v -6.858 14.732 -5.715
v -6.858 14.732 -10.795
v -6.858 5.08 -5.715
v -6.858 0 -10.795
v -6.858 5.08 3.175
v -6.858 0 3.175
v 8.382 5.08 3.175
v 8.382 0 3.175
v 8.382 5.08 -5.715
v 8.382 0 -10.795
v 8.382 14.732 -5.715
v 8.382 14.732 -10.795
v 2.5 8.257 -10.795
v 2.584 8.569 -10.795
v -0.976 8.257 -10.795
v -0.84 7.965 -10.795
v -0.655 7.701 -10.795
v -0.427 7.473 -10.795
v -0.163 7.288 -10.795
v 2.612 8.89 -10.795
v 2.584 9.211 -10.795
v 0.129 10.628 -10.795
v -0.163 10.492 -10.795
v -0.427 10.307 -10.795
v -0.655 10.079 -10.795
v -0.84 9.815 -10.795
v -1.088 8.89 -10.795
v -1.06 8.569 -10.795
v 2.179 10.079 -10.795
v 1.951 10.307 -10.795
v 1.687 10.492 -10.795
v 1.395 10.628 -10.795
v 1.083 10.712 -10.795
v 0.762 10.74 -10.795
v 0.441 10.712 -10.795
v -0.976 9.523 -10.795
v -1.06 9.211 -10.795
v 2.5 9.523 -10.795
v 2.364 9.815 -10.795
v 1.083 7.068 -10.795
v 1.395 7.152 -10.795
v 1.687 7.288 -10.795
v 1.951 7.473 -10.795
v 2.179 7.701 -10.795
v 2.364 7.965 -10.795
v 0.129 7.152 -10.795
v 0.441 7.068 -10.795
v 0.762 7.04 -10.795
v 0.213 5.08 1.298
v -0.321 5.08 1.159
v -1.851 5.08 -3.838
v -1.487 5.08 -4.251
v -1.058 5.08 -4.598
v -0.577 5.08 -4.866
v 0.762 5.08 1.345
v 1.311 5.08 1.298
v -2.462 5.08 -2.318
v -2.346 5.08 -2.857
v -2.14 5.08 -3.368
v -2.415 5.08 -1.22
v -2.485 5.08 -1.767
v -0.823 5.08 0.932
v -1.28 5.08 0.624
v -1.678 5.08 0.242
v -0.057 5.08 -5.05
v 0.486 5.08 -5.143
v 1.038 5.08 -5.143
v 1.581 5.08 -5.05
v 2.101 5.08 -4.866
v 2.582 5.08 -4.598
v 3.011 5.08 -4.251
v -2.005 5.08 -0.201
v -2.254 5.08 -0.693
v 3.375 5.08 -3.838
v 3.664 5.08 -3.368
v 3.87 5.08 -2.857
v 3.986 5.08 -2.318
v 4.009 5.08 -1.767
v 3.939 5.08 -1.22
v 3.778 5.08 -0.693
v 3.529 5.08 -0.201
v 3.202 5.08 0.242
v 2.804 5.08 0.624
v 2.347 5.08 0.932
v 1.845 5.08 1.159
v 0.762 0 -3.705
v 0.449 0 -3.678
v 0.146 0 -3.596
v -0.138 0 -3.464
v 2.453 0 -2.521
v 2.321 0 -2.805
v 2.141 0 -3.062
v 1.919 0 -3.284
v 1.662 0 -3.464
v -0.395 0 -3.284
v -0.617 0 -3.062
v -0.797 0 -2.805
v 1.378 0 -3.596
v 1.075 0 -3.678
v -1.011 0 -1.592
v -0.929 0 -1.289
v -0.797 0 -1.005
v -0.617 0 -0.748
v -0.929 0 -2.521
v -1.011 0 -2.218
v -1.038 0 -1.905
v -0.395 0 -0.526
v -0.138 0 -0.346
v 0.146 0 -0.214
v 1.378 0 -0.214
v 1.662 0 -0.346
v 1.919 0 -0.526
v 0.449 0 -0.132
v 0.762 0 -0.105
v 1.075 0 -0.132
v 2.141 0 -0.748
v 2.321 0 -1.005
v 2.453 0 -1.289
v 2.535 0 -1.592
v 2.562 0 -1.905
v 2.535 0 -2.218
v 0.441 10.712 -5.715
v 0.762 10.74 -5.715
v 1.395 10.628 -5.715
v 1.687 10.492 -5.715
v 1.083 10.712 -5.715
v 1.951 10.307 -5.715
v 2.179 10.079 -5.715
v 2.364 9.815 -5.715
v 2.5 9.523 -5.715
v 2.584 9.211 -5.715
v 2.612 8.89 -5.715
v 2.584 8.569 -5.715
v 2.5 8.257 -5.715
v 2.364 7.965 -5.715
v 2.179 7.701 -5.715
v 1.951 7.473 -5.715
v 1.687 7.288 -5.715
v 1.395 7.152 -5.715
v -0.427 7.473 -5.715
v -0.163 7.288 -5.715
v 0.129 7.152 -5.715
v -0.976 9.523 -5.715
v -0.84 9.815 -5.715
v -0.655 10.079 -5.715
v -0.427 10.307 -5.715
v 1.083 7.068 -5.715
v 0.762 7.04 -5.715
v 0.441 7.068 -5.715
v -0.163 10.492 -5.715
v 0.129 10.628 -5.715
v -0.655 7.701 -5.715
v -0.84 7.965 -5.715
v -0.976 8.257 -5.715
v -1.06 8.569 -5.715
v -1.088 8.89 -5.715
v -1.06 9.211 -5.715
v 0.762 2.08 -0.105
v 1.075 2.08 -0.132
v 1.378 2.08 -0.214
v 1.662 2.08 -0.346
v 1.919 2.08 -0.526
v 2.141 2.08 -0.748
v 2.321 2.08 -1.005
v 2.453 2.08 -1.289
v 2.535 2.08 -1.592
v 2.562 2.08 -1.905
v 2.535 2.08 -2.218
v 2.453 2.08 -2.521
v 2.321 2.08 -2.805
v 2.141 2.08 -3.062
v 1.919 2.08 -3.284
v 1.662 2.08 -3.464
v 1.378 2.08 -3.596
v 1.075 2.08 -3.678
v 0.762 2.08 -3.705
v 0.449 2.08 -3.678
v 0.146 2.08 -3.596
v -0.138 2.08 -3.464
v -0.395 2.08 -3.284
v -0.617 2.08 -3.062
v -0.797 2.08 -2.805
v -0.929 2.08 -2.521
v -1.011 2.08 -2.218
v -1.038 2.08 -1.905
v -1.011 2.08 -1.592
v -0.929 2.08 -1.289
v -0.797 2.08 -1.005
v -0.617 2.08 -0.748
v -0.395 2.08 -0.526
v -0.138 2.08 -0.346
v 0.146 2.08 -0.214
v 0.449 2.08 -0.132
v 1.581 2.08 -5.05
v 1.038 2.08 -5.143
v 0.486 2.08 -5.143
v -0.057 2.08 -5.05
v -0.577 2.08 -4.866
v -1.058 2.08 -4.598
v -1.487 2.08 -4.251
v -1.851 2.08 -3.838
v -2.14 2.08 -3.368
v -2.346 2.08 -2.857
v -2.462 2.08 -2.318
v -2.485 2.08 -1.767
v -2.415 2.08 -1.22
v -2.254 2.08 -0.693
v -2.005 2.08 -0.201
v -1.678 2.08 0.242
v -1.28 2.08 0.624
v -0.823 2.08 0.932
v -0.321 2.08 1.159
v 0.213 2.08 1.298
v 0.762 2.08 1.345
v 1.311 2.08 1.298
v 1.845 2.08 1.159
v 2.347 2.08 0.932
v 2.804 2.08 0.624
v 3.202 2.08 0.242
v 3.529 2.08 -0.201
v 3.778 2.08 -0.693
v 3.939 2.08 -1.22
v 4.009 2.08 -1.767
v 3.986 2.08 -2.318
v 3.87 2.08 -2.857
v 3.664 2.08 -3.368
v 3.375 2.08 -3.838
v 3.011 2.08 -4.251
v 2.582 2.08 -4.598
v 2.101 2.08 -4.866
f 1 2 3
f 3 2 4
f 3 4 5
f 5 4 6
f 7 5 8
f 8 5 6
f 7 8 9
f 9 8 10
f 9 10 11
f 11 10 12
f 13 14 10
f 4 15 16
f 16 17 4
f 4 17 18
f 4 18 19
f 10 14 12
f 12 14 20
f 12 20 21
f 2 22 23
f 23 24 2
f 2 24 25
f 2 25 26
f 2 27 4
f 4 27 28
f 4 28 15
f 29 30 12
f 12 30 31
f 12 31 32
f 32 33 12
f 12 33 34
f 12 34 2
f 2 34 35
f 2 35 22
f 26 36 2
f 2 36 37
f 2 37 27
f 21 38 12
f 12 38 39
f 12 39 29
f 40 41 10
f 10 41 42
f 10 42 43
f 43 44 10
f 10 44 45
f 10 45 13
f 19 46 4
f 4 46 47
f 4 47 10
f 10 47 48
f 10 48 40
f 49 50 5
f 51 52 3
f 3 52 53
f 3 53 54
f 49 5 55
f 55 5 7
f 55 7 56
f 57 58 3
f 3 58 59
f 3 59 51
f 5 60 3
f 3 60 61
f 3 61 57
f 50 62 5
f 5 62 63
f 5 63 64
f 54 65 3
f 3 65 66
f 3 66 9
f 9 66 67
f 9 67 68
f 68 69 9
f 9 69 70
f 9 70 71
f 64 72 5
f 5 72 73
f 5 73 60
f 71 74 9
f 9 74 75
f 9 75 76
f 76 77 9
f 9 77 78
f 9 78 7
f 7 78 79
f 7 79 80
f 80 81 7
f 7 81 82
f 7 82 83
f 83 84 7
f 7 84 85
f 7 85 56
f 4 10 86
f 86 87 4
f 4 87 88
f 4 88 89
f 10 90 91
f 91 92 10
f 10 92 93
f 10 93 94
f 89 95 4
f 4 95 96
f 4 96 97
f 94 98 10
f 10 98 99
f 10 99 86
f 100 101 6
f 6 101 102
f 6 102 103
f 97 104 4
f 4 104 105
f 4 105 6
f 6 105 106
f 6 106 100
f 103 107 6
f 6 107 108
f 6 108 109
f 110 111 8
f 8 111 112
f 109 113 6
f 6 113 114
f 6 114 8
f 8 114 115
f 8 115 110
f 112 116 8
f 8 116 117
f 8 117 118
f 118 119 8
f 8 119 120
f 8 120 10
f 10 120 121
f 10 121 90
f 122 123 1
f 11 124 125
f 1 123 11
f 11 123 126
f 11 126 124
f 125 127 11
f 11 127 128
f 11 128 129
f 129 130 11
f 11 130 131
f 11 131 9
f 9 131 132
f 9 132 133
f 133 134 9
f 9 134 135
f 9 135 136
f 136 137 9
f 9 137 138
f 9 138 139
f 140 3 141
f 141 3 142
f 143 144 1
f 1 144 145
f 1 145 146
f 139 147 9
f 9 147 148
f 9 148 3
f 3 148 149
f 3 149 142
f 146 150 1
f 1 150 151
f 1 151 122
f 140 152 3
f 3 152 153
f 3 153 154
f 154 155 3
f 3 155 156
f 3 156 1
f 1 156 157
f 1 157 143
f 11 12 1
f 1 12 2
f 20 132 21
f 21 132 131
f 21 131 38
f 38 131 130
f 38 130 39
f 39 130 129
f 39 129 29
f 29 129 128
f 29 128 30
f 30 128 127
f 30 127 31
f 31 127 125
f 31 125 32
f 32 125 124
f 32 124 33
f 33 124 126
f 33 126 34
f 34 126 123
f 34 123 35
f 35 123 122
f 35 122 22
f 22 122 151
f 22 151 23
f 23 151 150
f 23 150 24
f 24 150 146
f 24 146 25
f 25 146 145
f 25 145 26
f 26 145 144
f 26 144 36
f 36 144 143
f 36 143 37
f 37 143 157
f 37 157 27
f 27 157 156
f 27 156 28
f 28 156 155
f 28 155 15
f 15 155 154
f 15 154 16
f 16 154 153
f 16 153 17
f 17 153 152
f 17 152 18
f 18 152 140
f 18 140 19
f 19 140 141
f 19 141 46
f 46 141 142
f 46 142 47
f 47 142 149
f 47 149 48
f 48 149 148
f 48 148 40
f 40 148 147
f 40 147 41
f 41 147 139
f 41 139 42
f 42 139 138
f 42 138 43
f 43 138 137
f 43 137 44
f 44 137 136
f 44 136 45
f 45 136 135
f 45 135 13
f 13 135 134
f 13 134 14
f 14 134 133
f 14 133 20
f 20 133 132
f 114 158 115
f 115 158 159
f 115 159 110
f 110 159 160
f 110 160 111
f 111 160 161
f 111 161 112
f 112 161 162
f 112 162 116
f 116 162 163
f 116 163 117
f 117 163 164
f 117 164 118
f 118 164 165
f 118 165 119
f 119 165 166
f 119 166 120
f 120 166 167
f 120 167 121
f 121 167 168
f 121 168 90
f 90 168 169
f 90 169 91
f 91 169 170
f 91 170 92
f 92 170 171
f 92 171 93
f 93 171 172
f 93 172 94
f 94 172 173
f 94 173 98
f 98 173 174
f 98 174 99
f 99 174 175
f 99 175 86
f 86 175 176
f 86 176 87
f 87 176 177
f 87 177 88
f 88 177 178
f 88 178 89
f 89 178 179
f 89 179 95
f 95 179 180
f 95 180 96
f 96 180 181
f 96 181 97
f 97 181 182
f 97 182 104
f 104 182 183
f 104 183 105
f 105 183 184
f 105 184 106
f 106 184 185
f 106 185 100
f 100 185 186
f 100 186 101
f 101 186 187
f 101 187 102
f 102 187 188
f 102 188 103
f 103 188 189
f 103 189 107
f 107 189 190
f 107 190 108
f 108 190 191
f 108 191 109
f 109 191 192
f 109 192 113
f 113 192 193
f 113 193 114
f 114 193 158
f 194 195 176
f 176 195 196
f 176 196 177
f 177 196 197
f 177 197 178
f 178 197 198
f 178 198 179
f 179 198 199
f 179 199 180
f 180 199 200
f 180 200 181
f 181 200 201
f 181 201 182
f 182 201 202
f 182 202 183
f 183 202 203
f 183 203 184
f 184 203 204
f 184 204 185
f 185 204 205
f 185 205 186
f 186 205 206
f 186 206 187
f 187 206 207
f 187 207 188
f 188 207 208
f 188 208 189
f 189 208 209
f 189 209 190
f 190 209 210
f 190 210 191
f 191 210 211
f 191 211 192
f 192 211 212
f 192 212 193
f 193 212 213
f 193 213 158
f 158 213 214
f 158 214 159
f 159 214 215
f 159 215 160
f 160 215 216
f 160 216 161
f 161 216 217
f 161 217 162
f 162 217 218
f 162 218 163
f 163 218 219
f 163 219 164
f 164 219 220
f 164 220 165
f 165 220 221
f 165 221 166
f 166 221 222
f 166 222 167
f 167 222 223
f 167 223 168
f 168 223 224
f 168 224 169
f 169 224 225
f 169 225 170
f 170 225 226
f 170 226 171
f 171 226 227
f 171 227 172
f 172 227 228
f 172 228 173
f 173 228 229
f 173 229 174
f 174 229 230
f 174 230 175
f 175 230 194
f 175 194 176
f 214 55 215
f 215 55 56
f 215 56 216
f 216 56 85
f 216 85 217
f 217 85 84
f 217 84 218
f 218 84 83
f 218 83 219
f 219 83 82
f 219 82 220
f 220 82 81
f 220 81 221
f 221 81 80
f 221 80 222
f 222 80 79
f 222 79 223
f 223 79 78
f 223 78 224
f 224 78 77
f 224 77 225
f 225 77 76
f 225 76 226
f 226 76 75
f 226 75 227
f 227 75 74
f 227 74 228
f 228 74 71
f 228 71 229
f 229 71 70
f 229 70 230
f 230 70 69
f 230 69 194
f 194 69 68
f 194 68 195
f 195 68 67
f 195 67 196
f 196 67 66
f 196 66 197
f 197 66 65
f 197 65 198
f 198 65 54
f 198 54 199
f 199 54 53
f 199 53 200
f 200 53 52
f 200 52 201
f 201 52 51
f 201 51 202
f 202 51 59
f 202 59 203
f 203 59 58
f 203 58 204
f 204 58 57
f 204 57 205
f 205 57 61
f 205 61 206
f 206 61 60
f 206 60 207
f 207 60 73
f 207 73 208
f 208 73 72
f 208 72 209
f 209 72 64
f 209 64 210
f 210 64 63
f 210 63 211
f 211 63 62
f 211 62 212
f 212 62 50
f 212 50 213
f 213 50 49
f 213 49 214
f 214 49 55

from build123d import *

# Parameters (mm, degrees)
SKETCH1_W                      = 15.24
SKETCH1_H                      = 13.97
BOSS_EXTRUDE1_DEPTH            = 5.08
SKETCH2_W                      = 15.24
SKETCH2_H                      = 5.08
BOSS_EXTRUDE2_DEPTH            = 9.652
M3_CLEARANCE_HOLE1_D           = 3.7
M3_CLEARANCE_HOLE1_DEPTH       = 25.4
M3_CLEARANCE_HOLE1_TIP         = 1.111592145
CBORE_FOR_M3_SHCS2_D           = 3.6
CBORE_FOR_M3_SHCS2_DEPTH       = 25.4
CBORE_FOR_M3_SHCS2_CBORE_D     = 6.5
CBORE_FOR_M3_SHCS2_CBORE_DEPTH = 3
CBORE_FOR_M3_SHCS2_TIP         = 1.081549114


with BuildPart() as part:
    # Sketch1 → Boss-Extrude1 (new body)
    with BuildSketch(Plane(origin=(0, 0, 0), x_dir=(1, 0, 0), z_dir=(0, 1, 0))):
        with Locations((0.762, 3.81)):
            Rectangle(SKETCH1_W, SKETCH1_H)
    extrude(amount=BOSS_EXTRUDE1_DEPTH)

    # Sketch2 → Boss-Extrude2 (add)
    with BuildSketch(Plane(origin=(0, 5.08, 0), x_dir=(1, 0, 0), z_dir=(0, 1, 0))):
        with Locations((0.762, 8.255)):
            Rectangle(SKETCH2_W, SKETCH2_H)
    extrude(amount=BOSS_EXTRUDE2_DEPTH)

    # M3 Clearance Hole1
    with Locations(Plane.XY.offset(-5.715)):
        with Locations((0.762, 8.89)):
            Hole(M3_CLEARANCE_HOLE1_D / 2, depth=M3_CLEARANCE_HOLE1_DEPTH)
            with Locations((0, 0, -(M3_CLEARANCE_HOLE1_DEPTH + M3_CLEARANCE_HOLE1_TIP / 2))):  # 118° drill point
                Cone(0, M3_CLEARANCE_HOLE1_D / 2, M3_CLEARANCE_HOLE1_TIP, mode=Mode.SUBTRACT)

    # CBORE for M3 SHCS2
    with Locations(Plane(origin=(0, 5.08, 0), x_dir=(1, 0, 0), z_dir=(0, 1, 0))):
        with Locations((0.762, 1.905)):
            CounterBoreHole(CBORE_FOR_M3_SHCS2_D / 2, CBORE_FOR_M3_SHCS2_CBORE_D / 2, CBORE_FOR_M3_SHCS2_CBORE_DEPTH, depth=CBORE_FOR_M3_SHCS2_DEPTH)
            with Locations((0, 0, -(CBORE_FOR_M3_SHCS2_DEPTH + CBORE_FOR_M3_SHCS2_TIP / 2))):  # 118° drill point
                Cone(0, CBORE_FOR_M3_SHCS2_D / 2, CBORE_FOR_M3_SHCS2_TIP, mode=Mode.SUBTRACT)


solid = part.part
